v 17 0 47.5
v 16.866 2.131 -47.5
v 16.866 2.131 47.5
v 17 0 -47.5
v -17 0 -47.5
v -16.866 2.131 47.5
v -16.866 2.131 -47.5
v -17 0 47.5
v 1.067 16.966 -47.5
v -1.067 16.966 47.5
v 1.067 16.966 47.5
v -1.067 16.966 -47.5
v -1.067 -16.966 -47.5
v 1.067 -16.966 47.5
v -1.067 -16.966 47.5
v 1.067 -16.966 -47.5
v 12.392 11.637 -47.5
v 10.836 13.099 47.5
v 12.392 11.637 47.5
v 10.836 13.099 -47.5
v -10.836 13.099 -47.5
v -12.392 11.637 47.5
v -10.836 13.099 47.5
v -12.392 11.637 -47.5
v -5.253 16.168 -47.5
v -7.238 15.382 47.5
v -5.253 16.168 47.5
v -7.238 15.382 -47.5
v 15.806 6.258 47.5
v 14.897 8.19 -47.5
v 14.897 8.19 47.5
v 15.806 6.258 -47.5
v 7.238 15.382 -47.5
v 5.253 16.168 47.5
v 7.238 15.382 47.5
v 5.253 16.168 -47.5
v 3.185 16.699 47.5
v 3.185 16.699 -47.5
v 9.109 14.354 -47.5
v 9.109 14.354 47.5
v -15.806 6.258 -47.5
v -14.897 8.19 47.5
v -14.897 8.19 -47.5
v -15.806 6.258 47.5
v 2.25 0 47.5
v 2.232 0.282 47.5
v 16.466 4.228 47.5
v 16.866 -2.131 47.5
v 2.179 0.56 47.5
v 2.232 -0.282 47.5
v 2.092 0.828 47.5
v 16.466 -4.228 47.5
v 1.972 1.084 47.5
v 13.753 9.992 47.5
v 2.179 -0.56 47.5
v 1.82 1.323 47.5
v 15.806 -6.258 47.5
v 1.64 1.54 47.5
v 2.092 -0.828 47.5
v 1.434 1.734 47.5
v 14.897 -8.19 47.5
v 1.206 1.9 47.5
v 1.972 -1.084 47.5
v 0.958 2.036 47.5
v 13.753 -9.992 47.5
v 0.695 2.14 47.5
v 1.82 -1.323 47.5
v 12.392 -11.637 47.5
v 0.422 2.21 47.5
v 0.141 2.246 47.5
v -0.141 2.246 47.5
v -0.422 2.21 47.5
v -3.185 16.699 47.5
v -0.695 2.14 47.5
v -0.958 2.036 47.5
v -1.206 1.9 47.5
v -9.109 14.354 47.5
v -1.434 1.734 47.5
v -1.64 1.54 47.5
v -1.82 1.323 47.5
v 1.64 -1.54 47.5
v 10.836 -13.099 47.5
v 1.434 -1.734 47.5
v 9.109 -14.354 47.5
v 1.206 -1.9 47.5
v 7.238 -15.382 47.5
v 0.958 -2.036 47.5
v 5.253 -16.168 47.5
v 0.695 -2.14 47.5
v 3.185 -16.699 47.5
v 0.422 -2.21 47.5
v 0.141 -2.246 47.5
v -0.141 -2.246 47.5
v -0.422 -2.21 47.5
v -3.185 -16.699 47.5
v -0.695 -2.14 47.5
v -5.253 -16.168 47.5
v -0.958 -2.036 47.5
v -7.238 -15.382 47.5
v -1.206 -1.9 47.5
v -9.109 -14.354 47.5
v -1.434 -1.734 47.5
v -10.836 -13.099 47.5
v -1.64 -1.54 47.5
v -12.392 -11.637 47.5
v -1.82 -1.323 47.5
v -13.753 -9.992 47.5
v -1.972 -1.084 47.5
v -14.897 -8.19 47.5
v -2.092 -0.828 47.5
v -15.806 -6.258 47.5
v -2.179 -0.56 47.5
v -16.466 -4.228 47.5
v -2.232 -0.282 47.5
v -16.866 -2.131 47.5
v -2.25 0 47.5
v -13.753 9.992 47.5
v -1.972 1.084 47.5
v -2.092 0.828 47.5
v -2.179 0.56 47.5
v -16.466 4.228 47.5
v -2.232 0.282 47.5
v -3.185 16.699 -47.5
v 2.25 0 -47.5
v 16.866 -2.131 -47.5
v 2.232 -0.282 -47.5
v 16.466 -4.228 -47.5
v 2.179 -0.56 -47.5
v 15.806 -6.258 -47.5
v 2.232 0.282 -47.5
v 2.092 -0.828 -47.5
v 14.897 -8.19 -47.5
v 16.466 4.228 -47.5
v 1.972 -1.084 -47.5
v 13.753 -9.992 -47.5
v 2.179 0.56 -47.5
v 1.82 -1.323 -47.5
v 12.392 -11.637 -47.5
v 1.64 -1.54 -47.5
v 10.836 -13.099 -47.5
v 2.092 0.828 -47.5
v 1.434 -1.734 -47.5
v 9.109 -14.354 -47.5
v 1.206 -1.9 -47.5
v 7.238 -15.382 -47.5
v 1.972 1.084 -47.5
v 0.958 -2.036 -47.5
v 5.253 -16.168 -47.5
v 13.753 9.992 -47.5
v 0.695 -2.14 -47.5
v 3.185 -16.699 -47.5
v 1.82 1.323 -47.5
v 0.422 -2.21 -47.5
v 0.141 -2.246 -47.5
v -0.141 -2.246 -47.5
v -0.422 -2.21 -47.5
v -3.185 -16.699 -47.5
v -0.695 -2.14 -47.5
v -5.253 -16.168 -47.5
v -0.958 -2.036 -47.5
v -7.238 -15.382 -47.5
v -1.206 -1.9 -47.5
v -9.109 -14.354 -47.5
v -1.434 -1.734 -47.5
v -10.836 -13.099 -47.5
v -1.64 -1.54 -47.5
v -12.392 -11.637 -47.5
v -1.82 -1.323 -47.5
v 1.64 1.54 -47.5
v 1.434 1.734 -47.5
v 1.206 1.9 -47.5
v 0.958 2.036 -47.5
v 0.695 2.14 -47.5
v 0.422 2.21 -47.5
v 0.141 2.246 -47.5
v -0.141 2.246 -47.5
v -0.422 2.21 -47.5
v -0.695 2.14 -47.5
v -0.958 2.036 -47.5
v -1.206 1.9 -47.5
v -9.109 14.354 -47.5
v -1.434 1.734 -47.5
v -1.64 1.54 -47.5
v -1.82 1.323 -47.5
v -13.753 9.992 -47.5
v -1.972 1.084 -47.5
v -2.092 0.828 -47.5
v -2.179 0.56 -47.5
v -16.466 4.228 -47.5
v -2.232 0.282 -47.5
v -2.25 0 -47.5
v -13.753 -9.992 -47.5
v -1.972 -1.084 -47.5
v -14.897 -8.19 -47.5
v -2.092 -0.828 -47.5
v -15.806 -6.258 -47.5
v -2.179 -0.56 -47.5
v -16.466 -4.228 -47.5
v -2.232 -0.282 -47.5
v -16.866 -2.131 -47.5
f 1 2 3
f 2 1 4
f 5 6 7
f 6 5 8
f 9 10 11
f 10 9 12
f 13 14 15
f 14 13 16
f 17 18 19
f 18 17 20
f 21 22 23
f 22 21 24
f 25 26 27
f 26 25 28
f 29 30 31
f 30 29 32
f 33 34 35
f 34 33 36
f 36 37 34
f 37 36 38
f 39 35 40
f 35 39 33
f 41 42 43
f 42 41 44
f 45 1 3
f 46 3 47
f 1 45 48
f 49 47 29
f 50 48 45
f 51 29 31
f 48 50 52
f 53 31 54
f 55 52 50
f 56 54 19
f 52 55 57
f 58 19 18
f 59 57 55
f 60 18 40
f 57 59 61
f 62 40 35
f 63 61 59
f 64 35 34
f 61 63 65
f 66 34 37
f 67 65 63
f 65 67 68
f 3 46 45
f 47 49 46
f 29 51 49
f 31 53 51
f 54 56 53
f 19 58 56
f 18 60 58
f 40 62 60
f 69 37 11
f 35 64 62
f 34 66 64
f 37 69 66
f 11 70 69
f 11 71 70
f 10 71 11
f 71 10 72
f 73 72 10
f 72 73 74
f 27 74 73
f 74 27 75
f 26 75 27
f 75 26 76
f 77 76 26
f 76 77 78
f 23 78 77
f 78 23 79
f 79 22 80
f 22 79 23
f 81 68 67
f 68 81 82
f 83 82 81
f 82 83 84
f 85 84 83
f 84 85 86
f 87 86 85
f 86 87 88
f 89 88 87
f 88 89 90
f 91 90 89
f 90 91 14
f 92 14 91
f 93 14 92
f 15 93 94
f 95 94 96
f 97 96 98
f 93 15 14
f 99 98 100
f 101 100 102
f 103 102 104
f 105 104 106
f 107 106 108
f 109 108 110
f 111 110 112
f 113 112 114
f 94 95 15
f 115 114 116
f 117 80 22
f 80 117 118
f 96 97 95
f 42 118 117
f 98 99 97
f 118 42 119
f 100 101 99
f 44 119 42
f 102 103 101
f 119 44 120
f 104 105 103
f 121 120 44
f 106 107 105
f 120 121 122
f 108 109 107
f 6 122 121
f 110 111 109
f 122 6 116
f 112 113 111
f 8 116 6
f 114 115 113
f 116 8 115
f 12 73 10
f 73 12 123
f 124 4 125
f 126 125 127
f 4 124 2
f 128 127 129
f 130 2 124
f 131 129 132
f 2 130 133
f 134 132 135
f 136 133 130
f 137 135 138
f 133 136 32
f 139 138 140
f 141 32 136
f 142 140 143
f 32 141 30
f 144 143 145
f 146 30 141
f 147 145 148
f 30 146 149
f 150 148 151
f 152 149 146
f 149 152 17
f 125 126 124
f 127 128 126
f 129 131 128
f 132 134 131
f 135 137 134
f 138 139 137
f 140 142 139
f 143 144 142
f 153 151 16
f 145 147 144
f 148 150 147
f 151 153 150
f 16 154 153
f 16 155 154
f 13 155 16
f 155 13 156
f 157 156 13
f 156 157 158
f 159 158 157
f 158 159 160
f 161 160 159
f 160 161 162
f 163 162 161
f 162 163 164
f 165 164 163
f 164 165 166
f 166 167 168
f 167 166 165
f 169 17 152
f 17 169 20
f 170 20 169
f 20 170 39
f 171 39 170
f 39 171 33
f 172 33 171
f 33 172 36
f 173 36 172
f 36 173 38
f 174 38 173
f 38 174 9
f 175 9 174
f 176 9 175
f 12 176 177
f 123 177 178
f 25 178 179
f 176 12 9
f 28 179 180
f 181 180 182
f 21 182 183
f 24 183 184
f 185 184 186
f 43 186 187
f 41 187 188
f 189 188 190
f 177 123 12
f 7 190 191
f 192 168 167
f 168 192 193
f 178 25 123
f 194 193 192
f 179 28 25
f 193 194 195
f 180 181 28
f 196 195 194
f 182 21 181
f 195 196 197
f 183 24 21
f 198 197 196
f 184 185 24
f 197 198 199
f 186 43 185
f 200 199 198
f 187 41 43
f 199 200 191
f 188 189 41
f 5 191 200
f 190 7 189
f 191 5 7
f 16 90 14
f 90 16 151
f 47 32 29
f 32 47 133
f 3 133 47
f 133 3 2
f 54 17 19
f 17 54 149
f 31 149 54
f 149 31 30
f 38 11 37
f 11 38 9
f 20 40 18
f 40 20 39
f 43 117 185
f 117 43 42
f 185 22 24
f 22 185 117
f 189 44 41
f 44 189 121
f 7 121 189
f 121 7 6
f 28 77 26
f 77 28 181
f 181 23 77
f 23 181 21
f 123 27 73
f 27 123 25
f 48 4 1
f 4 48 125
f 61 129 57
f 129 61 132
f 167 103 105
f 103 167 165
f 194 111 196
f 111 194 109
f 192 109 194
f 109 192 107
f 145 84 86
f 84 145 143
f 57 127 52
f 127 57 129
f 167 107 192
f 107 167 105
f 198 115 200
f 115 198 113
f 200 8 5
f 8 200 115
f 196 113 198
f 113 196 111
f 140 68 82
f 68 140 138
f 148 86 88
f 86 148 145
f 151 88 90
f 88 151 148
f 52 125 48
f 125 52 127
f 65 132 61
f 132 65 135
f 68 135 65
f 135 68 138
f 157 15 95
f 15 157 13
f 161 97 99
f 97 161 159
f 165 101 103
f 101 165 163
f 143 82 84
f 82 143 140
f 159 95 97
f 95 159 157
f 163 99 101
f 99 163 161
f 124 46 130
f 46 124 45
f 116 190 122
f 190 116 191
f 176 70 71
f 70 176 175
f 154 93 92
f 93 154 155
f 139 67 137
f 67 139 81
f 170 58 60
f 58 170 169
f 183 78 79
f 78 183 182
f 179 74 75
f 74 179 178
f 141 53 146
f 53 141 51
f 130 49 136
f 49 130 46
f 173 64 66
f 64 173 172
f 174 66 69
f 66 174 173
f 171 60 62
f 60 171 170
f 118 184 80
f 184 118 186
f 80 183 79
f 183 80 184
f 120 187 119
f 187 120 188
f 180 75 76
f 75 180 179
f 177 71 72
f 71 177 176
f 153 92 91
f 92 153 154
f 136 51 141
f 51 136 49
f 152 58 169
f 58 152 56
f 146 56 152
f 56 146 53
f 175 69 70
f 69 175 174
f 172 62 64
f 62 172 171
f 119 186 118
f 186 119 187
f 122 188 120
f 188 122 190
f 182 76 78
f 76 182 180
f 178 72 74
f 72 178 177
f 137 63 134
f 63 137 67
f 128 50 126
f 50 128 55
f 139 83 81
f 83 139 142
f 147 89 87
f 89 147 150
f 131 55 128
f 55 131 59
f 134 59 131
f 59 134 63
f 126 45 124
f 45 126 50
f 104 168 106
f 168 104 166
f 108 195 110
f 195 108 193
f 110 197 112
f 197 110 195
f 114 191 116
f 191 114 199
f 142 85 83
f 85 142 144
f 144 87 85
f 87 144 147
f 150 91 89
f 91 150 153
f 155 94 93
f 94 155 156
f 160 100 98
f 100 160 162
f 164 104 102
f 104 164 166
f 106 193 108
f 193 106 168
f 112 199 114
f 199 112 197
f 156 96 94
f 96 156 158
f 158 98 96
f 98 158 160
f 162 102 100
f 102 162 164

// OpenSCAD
$fn = 50;


difference() {
	union() {
		translate(v = [0, 0, -47.5000000000]) {
			cylinder(h = 95, r = 17.0000000000);
		}
	}
	union() {
		translate(v = [0, 0, -100.0000000000]) {
			cylinder(h = 200, r = 2.2500000000);
		}
	}
}
